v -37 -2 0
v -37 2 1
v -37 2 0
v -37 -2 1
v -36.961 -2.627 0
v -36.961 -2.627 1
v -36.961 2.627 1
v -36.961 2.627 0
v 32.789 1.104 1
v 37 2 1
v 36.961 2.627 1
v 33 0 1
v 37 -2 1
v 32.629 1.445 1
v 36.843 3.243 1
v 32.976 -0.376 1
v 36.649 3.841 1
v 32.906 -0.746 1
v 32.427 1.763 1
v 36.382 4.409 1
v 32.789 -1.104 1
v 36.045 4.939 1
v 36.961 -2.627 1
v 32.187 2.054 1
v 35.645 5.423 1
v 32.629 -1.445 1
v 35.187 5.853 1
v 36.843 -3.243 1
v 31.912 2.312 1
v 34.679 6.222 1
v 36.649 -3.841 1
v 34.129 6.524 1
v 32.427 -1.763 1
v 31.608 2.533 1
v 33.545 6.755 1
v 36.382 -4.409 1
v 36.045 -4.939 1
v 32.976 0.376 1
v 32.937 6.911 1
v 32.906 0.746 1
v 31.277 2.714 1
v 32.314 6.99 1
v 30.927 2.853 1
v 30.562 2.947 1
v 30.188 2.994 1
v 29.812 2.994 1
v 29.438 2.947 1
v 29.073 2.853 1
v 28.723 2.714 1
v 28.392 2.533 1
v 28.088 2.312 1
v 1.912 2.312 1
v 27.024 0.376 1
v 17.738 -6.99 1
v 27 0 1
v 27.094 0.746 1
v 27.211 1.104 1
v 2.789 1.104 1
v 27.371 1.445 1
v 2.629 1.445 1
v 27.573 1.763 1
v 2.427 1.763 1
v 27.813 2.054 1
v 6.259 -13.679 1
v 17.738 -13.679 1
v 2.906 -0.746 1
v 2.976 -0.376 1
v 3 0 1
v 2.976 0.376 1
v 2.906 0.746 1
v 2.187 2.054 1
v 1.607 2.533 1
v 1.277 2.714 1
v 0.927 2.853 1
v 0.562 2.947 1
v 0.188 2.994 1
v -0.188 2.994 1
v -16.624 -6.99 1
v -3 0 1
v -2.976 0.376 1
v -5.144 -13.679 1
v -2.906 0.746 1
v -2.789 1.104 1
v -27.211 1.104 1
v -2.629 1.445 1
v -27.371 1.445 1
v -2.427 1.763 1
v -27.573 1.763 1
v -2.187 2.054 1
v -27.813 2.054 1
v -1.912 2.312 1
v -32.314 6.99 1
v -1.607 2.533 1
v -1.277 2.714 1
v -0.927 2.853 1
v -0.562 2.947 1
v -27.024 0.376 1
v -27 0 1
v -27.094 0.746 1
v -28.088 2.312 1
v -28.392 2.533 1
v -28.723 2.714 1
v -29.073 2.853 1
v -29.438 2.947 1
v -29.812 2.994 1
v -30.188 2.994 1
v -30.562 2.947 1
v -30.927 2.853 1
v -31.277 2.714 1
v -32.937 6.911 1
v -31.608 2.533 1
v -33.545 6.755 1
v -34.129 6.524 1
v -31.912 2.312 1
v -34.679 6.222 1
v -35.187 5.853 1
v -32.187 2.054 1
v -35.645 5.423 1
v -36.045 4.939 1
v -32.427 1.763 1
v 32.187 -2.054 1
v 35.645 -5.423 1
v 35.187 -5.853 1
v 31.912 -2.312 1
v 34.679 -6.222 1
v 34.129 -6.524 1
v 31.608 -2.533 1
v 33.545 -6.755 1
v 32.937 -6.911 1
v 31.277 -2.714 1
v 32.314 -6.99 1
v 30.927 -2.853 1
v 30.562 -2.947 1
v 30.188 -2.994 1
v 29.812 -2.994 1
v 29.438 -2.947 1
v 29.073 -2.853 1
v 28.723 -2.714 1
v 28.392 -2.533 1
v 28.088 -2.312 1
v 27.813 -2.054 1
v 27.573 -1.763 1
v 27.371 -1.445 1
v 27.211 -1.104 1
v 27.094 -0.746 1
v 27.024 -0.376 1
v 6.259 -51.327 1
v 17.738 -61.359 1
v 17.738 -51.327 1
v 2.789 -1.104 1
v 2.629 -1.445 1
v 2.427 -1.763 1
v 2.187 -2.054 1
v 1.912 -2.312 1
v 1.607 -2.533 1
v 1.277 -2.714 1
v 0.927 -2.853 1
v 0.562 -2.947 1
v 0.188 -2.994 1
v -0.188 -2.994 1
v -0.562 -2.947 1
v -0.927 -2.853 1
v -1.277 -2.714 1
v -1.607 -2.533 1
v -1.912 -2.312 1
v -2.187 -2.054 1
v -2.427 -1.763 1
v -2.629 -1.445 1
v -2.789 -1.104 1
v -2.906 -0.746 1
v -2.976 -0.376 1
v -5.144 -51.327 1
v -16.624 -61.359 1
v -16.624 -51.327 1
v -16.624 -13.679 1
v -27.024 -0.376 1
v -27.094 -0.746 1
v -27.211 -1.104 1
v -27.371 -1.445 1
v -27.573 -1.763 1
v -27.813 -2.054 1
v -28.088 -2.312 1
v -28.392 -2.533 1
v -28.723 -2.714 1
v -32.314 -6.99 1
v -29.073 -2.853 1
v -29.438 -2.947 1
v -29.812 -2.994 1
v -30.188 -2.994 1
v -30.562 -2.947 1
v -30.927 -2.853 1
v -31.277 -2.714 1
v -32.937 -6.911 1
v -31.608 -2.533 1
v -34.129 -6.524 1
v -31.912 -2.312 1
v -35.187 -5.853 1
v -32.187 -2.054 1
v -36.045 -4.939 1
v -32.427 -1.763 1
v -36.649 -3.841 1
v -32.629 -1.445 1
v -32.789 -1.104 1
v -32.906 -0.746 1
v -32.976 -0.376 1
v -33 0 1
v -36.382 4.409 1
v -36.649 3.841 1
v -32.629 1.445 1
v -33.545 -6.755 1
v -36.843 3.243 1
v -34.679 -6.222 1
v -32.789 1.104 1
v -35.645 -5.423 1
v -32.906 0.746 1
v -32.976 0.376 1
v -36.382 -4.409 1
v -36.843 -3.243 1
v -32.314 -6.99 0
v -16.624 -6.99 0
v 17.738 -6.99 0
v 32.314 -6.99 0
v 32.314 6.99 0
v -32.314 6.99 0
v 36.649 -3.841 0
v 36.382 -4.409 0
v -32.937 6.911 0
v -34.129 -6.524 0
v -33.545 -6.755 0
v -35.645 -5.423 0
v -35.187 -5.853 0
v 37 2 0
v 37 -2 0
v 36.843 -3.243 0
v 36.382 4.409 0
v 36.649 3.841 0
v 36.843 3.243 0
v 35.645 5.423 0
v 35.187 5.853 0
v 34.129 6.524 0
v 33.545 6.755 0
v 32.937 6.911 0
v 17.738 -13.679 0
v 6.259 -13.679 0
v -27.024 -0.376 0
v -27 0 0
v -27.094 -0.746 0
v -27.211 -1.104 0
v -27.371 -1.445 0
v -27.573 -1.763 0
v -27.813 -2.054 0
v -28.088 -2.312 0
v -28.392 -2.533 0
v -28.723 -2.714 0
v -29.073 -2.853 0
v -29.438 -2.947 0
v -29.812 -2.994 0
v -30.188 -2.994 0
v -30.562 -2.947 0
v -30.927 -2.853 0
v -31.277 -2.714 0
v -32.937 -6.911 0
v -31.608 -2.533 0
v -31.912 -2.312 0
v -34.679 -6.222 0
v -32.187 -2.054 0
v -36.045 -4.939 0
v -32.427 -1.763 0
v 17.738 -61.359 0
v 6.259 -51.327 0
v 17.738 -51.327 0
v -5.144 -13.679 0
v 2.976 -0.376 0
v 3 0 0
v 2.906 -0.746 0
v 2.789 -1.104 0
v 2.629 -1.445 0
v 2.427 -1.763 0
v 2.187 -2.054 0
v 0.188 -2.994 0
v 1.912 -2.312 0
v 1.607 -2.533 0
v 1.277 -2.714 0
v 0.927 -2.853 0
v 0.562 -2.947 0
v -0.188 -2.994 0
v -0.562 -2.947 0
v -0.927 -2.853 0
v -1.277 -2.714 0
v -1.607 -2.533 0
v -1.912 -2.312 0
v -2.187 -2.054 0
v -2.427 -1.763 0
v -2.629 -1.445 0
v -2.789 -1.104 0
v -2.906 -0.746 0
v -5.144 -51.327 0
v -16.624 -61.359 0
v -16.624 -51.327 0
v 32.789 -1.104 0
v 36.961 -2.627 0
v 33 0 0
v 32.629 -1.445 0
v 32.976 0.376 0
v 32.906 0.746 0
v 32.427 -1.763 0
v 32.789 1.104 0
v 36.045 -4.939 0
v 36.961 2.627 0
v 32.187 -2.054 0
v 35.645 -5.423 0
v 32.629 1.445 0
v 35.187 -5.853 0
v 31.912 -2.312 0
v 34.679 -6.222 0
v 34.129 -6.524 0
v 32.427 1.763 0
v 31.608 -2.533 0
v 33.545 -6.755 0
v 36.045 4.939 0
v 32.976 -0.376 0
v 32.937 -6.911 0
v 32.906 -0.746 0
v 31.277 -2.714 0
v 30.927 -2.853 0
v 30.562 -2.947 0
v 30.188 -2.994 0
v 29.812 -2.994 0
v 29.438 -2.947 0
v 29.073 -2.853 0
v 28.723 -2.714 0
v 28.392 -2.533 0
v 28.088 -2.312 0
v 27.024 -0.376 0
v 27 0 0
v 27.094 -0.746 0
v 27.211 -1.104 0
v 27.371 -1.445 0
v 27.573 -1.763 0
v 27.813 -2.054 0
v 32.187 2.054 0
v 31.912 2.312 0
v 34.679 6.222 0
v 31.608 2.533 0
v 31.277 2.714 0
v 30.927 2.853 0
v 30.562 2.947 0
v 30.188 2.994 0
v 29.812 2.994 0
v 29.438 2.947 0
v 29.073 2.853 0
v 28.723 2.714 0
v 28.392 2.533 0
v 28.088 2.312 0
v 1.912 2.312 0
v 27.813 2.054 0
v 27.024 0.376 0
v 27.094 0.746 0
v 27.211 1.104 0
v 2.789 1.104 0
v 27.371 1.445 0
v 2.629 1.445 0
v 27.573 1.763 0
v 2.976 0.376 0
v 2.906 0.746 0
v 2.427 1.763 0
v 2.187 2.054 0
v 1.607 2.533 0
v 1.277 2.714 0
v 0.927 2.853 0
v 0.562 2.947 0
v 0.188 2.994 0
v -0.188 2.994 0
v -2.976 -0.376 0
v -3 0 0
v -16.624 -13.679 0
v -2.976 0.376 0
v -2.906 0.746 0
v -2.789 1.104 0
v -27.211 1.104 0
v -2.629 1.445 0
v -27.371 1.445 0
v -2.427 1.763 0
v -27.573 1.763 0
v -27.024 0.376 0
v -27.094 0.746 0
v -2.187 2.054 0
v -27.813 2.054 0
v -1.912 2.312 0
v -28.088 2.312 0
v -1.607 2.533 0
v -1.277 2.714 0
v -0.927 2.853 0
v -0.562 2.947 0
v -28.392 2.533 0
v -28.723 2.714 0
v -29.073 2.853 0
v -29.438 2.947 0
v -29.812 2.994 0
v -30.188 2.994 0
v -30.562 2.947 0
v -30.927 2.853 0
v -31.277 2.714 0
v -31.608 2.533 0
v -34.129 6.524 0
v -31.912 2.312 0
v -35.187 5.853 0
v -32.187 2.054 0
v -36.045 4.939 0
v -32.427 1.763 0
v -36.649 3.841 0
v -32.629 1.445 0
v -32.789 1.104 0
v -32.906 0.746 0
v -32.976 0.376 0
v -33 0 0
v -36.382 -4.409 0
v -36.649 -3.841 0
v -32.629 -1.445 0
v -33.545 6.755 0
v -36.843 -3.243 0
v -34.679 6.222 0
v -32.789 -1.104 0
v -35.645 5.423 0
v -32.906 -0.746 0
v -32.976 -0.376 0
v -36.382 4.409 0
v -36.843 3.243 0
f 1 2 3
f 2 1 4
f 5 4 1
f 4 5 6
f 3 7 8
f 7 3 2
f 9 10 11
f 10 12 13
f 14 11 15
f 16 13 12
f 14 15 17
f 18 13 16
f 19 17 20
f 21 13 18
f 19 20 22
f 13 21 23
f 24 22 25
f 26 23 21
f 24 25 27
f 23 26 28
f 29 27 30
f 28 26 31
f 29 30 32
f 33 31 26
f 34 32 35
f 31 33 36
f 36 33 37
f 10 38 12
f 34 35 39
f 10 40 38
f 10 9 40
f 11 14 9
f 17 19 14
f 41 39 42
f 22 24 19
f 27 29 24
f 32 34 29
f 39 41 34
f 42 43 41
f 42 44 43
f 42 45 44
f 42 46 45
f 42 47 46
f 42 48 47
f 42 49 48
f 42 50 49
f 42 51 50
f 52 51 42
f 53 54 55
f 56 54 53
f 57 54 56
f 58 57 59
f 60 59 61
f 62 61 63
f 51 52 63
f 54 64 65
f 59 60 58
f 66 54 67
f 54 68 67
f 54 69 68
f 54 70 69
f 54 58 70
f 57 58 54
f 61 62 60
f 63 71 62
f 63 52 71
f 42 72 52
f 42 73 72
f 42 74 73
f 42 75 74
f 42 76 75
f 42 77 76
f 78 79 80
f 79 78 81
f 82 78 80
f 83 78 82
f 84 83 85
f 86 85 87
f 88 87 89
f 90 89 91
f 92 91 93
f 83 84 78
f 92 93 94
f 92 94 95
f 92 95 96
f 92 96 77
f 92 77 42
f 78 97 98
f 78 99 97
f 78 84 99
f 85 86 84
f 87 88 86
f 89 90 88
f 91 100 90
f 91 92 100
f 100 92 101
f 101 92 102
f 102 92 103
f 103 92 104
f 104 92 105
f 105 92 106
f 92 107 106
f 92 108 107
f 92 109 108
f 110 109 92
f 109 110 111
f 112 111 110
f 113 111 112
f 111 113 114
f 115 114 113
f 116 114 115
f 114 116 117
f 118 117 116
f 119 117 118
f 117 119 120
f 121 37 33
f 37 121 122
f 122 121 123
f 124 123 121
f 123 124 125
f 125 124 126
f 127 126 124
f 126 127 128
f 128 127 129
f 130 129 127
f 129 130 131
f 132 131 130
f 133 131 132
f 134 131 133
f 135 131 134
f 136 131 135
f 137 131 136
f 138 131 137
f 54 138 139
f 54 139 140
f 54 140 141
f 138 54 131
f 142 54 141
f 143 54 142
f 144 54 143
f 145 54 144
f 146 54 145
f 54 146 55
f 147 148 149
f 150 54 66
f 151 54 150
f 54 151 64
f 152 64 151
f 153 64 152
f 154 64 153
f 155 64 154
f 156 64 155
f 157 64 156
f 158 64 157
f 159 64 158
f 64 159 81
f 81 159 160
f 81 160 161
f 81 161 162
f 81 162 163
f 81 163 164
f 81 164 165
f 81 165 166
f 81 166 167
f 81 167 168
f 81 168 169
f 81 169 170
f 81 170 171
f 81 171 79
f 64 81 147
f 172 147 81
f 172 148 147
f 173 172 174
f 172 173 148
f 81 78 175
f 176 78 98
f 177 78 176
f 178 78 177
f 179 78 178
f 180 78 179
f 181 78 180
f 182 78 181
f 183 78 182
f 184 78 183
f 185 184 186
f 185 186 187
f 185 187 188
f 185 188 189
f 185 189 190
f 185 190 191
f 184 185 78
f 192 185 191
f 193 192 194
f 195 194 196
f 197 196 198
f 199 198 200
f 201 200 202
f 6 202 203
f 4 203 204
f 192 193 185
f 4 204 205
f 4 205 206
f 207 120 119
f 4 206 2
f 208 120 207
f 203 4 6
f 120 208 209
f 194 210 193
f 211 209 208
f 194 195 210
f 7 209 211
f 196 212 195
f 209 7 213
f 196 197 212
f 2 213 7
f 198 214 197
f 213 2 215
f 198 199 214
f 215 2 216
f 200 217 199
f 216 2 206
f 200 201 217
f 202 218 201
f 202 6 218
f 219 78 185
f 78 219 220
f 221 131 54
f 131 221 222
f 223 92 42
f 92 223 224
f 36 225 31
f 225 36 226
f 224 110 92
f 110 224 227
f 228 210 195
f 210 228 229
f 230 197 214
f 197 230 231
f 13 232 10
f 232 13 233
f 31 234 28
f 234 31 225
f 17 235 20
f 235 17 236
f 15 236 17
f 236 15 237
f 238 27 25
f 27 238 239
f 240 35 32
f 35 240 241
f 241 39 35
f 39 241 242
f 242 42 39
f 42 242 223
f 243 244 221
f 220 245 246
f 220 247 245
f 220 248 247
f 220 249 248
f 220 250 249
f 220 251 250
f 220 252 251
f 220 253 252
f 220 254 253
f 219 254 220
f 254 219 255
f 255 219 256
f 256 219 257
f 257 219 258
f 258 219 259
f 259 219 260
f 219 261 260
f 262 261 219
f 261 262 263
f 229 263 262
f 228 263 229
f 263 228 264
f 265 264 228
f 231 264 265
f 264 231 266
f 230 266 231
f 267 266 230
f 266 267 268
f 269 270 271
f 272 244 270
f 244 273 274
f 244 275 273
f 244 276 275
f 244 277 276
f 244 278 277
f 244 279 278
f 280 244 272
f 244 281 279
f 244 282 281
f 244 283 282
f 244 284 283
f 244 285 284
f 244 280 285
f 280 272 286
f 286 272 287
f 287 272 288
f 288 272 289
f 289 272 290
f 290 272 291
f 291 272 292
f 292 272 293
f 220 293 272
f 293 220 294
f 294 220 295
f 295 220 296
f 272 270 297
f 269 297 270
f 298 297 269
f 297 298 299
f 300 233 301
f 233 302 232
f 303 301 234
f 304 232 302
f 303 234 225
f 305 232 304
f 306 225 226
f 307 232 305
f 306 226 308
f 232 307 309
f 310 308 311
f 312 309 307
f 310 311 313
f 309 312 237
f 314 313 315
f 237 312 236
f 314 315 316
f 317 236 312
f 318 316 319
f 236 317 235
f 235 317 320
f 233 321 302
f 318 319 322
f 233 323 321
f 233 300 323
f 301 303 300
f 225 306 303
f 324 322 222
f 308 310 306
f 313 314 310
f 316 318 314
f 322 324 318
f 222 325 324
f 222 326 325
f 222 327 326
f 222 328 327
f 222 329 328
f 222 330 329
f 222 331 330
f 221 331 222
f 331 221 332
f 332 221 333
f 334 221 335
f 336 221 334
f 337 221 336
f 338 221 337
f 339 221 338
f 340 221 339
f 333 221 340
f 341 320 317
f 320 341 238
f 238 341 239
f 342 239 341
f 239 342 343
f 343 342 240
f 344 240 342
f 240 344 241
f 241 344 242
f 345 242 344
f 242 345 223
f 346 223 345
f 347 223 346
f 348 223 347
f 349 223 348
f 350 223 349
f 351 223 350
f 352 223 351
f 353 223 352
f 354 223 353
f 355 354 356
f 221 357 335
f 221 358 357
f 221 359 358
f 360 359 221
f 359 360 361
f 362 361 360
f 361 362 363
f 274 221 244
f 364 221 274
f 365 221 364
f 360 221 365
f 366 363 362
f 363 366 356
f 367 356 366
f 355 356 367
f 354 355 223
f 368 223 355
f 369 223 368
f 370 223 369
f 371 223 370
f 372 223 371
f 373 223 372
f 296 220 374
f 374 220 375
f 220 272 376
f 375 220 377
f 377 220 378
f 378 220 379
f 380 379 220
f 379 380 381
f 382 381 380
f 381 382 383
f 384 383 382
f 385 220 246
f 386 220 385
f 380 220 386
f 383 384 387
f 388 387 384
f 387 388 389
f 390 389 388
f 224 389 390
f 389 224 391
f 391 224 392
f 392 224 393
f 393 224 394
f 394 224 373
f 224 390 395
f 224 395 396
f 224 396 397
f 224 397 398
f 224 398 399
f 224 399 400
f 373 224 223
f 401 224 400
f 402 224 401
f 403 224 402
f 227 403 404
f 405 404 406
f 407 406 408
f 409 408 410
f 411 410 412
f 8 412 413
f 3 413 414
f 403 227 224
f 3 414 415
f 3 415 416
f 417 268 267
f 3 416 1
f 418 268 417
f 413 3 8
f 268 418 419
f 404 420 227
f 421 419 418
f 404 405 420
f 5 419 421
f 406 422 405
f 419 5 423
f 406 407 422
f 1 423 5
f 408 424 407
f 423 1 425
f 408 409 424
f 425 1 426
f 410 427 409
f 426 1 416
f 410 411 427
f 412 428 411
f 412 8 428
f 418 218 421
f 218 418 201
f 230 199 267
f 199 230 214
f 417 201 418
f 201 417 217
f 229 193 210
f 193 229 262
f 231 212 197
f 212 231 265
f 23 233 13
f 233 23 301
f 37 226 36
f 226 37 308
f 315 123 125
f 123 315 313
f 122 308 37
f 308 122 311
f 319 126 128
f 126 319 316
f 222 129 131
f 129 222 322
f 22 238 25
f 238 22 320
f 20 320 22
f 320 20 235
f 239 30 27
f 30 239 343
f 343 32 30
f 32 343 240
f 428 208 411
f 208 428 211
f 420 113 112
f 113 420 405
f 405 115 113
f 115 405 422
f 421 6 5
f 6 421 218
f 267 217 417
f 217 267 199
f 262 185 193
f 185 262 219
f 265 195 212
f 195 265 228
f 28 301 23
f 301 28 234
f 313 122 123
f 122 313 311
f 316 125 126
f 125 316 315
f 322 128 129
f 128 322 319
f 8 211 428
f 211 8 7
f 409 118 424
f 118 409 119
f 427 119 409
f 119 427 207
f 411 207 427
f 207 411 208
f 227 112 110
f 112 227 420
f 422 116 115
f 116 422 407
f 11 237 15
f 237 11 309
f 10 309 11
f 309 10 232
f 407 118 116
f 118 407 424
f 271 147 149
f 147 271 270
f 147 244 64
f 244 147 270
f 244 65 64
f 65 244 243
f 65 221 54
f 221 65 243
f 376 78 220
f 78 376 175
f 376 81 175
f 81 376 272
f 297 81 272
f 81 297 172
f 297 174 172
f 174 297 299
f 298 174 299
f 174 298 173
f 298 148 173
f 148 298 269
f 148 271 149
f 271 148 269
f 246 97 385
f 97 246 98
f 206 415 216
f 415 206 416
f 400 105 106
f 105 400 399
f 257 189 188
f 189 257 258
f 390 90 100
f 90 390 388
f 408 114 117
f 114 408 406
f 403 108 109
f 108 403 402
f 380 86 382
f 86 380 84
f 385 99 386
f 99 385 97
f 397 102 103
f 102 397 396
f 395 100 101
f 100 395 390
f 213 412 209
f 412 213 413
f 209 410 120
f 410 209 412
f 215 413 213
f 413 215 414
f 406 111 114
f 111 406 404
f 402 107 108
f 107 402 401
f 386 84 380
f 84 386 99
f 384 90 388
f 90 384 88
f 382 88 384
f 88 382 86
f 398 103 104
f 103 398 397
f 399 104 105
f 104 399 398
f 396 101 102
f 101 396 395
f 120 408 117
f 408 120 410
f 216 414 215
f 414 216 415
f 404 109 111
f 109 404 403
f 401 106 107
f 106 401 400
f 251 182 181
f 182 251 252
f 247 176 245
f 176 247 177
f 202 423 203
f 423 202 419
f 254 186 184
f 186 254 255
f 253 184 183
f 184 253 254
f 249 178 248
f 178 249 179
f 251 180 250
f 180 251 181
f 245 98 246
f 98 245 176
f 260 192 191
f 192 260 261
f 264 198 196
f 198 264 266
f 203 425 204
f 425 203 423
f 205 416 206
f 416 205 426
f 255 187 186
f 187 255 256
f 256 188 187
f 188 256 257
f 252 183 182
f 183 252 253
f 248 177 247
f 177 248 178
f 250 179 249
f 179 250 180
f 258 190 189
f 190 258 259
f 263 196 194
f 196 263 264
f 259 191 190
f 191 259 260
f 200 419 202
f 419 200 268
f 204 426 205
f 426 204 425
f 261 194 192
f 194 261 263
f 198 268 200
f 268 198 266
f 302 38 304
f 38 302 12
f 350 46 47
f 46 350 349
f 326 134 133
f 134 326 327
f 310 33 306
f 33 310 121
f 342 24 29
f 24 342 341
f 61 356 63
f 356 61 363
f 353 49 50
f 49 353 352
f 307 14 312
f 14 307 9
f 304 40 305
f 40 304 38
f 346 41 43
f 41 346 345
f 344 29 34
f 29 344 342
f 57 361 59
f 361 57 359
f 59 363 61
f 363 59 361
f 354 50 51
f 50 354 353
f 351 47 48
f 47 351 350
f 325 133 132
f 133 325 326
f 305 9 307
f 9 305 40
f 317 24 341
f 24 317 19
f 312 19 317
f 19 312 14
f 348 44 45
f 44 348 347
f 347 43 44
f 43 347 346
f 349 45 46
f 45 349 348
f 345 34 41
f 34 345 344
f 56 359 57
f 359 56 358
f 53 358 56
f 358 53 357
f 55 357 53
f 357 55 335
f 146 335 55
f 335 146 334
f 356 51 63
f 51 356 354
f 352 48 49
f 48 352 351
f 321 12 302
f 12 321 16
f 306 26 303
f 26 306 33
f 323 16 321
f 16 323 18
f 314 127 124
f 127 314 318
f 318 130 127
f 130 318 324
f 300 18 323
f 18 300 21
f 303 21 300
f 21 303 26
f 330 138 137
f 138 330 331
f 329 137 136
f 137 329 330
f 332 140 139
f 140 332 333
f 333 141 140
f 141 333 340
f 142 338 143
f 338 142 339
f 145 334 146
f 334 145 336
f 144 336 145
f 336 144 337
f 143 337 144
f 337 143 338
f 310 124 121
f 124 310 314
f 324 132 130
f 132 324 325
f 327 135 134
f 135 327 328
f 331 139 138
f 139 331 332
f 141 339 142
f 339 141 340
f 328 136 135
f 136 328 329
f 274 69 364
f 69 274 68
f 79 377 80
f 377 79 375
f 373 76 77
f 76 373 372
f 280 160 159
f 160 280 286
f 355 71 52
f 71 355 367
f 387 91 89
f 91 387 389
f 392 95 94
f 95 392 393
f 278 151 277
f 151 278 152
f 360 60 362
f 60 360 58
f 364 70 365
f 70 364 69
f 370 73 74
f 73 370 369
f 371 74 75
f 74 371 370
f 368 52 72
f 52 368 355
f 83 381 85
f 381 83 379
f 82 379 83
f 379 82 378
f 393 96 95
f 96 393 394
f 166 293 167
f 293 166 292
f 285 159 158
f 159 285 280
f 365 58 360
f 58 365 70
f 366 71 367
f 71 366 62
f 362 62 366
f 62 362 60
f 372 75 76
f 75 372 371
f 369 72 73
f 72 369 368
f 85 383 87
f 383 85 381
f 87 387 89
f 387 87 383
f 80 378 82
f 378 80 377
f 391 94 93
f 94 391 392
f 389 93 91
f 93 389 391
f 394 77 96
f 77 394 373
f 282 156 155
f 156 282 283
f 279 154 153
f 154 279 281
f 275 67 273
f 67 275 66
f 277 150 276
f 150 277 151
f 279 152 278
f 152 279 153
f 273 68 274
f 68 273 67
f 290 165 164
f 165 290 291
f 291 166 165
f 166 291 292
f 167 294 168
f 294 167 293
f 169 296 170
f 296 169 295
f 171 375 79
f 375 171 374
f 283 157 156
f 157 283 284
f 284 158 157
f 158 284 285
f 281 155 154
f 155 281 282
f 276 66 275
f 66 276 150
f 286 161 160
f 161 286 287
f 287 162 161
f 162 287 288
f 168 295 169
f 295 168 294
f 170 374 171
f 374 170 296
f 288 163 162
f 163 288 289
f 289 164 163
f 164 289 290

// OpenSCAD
$fn = 50;


difference() {
	union() {
		translate(v = [0, 0, 0]) {
			rotate(a = [0, 0, 0]) {
				hull() {
					translate(v = [-32.0000000000, 2.0000000000, 0]) {
						rotate(a = [0, 0, 0]) {
							translate(v = [0, 0, 0]) {
								rotate(a = [0, 0, 0]) {
									cylinder(h = 1, r = 5);
								}
							}
						}
					}
					translate(v = [32.0000000000, 2.0000000000, 0]) {
						rotate(a = [0, 0, 0]) {
							translate(v = [0, 0, 0]) {
								rotate(a = [0, 0, 0]) {
									cylinder(h = 1, r = 5);
								}
							}
						}
					}
					translate(v = [-32.0000000000, -2.0000000000, 0]) {
						rotate(a = [0, 0, 0]) {
							translate(v = [0, 0, 0]) {
								rotate(a = [0, 0, 0]) {
									cylinder(h = 1, r = 5);
								}
							}
						}
					}
					translate(v = [32.0000000000, -2.0000000000, 0]) {
						rotate(a = [0, 0, 0]) {
							translate(v = [0, 0, 0]) {
								rotate(a = [0, 0, 0]) {
									cylinder(h = 1, r = 5);
								}
							}
						}
					}
				}
			}
		}
		translate(v = [0, -5, 0]) {
			rotate(a = [0, 0, 0]) {
				linear_extrude(height = 1) {
					text(font = "DejaVu Sans Mono:style=Bold", halign = "center", size = 57.0000000000, text = "I", valign = "top");
				}
			}
		}
	}
	union() {
		translate(v = [-30.0000000000, 0.0000000000, -125.0000000000]) {
			rotate(a = [0, 0, 0]) {
				cylinder(h = 250, r = 3.0000000000);
			}
		}
		translate(v = [30.0000000000, 0.0000000000, -125.0000000000]) {
			rotate(a = [0, 0, 0]) {
				cylinder(h = 250, r = 3.0000000000);
			}
		}
		translate(v = [30.0000000000, 0.0000000000, -125.0000000000]) {
			rotate(a = [0, 0, 0]) {
				cylinder(h = 250, r = 3.0000000000);
			}
		}
		translate(v = [0, 0, -125.0000000000]) {
			rotate(a = [0, 0, 0]) {
				cylinder(h = 250, r = 3.0000000000);
			}
		}
	}
}
